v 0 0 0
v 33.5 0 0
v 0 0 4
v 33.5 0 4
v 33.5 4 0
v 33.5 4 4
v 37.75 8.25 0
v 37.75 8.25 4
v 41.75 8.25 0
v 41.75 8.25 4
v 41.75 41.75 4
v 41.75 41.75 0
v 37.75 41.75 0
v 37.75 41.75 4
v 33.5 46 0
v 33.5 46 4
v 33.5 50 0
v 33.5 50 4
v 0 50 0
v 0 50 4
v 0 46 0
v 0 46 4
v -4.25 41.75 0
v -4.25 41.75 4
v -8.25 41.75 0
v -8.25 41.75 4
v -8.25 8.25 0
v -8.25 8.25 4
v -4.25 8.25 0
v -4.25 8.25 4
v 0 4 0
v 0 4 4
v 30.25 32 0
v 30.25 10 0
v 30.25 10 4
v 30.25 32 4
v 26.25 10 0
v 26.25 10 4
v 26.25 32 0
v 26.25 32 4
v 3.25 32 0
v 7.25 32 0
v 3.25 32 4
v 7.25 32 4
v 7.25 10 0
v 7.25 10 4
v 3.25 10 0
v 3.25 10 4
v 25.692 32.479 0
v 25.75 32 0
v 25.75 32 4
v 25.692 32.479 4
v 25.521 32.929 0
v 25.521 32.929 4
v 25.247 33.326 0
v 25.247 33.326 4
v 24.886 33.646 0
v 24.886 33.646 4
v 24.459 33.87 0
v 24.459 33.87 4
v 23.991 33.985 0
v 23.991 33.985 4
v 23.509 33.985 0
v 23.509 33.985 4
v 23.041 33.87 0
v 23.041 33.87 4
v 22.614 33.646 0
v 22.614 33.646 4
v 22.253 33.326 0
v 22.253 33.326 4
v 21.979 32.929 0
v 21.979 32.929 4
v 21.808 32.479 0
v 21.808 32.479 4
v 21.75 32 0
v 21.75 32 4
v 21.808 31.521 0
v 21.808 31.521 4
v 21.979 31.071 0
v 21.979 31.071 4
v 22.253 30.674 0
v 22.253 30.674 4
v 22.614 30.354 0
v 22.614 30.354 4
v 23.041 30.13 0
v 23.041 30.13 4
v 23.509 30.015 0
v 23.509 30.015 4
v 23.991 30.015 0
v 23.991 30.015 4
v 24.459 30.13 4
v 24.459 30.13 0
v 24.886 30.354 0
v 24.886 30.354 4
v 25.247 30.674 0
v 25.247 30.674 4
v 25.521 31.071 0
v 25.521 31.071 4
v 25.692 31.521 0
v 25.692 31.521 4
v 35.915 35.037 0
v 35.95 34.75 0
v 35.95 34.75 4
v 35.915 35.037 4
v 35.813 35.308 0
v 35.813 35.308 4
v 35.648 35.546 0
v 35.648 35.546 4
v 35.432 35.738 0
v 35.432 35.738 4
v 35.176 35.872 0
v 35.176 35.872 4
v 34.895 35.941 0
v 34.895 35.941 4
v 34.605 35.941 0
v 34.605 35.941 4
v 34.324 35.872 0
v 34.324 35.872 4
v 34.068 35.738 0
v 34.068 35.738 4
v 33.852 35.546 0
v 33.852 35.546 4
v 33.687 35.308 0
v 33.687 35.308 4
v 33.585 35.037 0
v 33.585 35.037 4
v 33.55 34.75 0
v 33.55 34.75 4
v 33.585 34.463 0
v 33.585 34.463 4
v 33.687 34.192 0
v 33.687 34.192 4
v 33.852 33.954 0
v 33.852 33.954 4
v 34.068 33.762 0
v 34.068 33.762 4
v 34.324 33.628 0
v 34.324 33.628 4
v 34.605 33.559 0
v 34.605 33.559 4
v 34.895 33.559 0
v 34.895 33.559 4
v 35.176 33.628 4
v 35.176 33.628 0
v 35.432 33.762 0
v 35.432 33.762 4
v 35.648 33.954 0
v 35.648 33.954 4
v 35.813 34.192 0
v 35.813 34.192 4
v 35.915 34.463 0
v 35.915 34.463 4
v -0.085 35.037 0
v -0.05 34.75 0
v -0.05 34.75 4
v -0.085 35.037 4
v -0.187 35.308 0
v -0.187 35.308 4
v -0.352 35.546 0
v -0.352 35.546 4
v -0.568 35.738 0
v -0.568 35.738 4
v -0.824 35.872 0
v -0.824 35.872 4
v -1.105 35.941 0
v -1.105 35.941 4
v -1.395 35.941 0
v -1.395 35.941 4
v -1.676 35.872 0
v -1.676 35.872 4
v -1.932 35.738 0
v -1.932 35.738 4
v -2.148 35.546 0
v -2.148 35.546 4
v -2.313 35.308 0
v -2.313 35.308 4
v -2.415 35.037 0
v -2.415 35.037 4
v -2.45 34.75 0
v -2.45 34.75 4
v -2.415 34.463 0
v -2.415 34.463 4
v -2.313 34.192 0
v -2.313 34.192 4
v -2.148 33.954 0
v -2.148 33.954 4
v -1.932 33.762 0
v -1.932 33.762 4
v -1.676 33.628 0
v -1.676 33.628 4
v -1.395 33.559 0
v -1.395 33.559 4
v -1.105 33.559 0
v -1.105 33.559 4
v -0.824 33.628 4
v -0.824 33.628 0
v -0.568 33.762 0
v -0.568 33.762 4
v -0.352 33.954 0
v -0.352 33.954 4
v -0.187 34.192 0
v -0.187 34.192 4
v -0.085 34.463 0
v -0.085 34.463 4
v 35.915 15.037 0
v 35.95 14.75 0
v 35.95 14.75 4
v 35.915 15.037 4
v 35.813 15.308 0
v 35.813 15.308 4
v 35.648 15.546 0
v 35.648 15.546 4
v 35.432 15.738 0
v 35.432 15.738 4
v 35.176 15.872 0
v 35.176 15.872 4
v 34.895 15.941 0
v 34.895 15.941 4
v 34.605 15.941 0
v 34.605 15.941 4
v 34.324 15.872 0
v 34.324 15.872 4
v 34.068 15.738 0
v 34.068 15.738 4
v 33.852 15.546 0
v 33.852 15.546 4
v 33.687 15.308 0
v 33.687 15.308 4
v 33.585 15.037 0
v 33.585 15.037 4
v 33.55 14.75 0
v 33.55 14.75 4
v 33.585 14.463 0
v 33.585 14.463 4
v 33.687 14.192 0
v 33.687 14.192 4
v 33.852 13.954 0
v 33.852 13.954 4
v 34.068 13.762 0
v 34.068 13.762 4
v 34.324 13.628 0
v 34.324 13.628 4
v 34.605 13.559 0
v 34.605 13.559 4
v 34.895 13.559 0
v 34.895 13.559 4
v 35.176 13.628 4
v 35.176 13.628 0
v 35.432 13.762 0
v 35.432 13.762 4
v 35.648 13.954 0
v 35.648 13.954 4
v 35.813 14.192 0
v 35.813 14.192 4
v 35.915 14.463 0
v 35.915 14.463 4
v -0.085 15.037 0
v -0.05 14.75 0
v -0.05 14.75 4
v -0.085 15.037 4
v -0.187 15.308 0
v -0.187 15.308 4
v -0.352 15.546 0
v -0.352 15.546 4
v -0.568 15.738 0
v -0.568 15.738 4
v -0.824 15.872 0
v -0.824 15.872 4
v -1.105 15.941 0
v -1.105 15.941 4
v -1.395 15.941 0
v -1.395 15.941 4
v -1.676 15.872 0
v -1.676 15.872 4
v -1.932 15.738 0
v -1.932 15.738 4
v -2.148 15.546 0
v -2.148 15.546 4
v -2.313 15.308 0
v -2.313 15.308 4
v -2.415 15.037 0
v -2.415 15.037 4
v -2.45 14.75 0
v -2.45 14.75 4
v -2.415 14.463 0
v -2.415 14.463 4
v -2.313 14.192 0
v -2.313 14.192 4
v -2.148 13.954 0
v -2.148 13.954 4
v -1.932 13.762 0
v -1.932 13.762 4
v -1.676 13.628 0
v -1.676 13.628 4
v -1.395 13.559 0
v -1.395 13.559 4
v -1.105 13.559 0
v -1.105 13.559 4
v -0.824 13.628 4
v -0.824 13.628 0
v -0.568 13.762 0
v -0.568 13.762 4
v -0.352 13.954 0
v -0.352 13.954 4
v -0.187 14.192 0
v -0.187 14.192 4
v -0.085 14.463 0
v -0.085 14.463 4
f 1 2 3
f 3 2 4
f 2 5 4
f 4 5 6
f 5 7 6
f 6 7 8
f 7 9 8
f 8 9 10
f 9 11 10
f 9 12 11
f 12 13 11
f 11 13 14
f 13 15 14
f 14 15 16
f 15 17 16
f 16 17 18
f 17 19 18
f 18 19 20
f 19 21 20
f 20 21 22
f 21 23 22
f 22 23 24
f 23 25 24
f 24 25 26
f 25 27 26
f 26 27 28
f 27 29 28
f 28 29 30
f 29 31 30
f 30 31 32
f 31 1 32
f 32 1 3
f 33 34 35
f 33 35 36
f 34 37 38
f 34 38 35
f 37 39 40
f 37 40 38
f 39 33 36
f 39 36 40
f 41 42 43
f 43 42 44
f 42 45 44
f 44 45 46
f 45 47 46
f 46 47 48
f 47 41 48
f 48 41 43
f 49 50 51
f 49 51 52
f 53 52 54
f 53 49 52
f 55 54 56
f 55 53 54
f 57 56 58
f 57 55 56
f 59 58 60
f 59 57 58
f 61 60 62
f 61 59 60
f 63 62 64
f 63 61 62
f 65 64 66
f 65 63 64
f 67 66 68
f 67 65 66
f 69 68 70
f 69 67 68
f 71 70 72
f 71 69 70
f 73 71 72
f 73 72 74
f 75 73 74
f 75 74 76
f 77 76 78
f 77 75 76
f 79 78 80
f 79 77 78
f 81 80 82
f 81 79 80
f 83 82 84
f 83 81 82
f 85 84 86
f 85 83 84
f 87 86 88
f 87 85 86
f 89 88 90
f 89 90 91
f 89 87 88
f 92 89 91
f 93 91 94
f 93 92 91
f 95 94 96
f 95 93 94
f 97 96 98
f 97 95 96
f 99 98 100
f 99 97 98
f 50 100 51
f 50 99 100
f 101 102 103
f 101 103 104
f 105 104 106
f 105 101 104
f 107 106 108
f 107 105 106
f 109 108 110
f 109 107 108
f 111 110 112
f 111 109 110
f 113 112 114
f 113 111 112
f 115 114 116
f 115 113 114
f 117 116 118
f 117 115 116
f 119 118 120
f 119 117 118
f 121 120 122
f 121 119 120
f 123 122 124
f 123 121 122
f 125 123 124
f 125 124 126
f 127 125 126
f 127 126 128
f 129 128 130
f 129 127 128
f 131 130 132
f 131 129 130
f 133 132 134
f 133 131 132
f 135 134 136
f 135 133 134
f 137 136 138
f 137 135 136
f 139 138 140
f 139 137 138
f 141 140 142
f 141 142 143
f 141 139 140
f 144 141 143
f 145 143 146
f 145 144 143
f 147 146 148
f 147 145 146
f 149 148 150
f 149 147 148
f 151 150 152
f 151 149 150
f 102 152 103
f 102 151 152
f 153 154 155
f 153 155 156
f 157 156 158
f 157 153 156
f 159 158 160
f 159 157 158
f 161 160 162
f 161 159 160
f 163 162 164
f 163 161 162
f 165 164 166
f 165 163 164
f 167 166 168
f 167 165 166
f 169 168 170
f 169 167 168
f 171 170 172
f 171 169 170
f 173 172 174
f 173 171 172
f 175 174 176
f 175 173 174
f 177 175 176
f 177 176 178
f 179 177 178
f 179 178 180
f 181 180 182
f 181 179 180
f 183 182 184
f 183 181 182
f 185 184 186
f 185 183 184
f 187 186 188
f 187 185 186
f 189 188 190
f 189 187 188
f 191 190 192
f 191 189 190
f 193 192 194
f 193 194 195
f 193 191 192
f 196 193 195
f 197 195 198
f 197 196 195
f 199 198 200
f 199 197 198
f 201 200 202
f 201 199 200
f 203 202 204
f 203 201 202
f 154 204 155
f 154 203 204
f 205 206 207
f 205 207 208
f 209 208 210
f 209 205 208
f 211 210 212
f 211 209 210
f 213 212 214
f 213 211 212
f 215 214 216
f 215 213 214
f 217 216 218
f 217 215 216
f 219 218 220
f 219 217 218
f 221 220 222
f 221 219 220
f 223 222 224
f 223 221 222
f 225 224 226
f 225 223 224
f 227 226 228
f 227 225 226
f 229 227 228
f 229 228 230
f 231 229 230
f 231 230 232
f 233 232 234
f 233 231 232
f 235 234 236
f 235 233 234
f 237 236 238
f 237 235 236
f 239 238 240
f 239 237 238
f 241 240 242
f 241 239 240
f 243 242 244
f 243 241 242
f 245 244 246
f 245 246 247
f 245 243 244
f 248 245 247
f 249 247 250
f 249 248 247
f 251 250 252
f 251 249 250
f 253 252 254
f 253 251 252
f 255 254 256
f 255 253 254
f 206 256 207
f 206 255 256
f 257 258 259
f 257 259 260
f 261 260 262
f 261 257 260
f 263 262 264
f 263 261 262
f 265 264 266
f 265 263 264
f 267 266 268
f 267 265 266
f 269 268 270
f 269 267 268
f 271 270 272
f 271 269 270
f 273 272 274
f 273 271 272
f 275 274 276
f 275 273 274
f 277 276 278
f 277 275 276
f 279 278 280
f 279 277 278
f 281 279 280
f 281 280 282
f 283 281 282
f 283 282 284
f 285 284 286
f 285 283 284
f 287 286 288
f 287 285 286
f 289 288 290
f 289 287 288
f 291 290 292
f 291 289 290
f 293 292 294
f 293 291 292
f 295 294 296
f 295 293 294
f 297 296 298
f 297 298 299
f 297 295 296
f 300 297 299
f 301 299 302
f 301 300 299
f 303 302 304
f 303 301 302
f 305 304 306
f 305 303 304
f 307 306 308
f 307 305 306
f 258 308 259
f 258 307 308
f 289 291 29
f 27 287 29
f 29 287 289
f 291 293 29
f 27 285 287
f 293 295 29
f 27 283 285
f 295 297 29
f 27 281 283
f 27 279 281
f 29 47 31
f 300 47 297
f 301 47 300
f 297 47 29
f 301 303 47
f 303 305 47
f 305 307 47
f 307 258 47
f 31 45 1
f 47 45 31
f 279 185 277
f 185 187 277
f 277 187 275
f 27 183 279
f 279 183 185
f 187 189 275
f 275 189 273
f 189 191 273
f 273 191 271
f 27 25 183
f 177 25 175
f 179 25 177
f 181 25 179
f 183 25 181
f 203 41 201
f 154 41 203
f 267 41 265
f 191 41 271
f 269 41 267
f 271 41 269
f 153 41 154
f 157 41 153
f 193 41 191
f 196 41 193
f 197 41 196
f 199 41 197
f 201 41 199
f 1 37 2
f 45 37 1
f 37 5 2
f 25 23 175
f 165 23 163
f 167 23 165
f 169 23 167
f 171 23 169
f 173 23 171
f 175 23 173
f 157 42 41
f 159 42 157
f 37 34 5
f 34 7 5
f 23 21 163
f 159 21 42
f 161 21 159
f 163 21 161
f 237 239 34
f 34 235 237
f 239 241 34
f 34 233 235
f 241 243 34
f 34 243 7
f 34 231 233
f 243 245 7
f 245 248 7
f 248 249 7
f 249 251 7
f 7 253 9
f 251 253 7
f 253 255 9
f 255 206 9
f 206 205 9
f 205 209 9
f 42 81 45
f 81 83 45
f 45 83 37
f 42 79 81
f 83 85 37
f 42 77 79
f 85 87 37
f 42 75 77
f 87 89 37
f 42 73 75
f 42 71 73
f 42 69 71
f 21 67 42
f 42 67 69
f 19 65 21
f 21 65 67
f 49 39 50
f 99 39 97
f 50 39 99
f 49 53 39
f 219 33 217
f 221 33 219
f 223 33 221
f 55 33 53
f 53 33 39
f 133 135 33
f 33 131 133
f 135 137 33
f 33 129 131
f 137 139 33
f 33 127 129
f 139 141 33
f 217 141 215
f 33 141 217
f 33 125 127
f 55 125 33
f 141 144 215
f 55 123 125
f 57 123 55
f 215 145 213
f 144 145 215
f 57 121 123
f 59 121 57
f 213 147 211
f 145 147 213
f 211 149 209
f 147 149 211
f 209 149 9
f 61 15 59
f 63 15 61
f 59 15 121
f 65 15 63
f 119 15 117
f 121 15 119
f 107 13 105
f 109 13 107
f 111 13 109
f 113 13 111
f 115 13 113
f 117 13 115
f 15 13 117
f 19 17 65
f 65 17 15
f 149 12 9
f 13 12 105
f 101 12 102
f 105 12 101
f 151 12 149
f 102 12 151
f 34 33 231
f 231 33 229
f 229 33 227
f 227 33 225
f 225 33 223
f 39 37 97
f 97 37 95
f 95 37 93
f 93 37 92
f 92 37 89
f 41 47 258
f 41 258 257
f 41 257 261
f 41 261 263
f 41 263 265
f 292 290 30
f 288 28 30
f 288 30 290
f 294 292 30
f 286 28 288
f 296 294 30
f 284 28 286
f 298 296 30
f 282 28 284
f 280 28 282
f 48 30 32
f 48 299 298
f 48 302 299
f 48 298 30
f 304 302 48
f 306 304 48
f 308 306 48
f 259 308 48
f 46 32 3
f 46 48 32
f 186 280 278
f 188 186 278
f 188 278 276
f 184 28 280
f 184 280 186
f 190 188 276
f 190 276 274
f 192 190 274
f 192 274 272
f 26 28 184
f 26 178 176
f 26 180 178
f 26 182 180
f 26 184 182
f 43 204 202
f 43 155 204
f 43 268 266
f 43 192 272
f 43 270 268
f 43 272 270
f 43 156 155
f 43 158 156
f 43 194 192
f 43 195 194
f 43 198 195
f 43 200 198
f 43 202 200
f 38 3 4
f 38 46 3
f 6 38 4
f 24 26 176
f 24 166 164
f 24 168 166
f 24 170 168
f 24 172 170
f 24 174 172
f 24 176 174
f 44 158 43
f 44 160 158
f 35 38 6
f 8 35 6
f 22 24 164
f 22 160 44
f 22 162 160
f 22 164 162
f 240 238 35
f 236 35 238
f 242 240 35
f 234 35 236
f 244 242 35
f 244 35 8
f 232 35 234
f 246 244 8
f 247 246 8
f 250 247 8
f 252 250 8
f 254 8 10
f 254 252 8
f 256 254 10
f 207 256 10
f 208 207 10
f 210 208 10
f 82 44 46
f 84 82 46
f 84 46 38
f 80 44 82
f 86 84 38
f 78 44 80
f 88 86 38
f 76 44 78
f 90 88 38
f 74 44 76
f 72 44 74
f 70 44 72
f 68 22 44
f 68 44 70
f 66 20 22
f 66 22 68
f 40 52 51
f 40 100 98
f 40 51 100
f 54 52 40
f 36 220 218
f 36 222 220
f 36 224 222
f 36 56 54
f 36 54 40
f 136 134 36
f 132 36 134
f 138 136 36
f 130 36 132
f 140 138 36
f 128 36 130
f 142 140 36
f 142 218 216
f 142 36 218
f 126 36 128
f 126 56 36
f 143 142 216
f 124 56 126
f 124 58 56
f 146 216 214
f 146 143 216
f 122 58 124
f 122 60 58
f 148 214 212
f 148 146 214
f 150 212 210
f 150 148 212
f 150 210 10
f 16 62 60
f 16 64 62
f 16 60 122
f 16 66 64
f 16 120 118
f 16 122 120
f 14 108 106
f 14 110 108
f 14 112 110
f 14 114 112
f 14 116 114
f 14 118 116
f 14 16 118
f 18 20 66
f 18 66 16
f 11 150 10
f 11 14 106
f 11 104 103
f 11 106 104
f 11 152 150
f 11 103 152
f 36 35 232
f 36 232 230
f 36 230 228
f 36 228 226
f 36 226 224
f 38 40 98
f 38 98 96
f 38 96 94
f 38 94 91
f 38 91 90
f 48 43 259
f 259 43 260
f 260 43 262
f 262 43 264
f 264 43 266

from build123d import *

# Parameters (mm, degrees)
SKETCH_R   = 1.2
SKETCH_R_2 = 2
SKETCH_W   = 4
SKETCH_H   = 22
PAD_DEPTH  = 4


with BuildPart() as part:
    # Sketch → Pad (new body)
    with BuildSketch(Plane.XY):
        Polygon((0, 0), (33.5, 0), (33.5, 4), (37.75, 8.25), (41.75, 8.25), (41.75, 41.75), (37.75, 41.75), (33.5, 46), (33.5, 50), (0, 50), (0, 46), (-4.25, 41.75), (-8.25, 41.75), (-8.25, 8.25), (-4.25, 8.25), (0, 4), align=None)
        with Locations((-1.25, 34.75)):
            Circle(SKETCH_R, mode=Mode.SUBTRACT)
        with Locations((-1.25, 14.75)):
            Circle(SKETCH_R, mode=Mode.SUBTRACT)
        with Locations((34.75, 14.75)):
            Circle(SKETCH_R, mode=Mode.SUBTRACT)
        with Locations((34.75, 34.75)):
            Circle(SKETCH_R, mode=Mode.SUBTRACT)
        with Locations((23.75, 32)):
            Circle(SKETCH_R_2, mode=Mode.SUBTRACT)
        with Locations((5.25, 21)):
            Rectangle(SKETCH_W, SKETCH_H, mode=Mode.SUBTRACT)
        with Locations((28.25, 21)):
            Rectangle(SKETCH_W, SKETCH_H, mode=Mode.SUBTRACT)
    extrude(amount=PAD_DEPTH)


solid = part.part
